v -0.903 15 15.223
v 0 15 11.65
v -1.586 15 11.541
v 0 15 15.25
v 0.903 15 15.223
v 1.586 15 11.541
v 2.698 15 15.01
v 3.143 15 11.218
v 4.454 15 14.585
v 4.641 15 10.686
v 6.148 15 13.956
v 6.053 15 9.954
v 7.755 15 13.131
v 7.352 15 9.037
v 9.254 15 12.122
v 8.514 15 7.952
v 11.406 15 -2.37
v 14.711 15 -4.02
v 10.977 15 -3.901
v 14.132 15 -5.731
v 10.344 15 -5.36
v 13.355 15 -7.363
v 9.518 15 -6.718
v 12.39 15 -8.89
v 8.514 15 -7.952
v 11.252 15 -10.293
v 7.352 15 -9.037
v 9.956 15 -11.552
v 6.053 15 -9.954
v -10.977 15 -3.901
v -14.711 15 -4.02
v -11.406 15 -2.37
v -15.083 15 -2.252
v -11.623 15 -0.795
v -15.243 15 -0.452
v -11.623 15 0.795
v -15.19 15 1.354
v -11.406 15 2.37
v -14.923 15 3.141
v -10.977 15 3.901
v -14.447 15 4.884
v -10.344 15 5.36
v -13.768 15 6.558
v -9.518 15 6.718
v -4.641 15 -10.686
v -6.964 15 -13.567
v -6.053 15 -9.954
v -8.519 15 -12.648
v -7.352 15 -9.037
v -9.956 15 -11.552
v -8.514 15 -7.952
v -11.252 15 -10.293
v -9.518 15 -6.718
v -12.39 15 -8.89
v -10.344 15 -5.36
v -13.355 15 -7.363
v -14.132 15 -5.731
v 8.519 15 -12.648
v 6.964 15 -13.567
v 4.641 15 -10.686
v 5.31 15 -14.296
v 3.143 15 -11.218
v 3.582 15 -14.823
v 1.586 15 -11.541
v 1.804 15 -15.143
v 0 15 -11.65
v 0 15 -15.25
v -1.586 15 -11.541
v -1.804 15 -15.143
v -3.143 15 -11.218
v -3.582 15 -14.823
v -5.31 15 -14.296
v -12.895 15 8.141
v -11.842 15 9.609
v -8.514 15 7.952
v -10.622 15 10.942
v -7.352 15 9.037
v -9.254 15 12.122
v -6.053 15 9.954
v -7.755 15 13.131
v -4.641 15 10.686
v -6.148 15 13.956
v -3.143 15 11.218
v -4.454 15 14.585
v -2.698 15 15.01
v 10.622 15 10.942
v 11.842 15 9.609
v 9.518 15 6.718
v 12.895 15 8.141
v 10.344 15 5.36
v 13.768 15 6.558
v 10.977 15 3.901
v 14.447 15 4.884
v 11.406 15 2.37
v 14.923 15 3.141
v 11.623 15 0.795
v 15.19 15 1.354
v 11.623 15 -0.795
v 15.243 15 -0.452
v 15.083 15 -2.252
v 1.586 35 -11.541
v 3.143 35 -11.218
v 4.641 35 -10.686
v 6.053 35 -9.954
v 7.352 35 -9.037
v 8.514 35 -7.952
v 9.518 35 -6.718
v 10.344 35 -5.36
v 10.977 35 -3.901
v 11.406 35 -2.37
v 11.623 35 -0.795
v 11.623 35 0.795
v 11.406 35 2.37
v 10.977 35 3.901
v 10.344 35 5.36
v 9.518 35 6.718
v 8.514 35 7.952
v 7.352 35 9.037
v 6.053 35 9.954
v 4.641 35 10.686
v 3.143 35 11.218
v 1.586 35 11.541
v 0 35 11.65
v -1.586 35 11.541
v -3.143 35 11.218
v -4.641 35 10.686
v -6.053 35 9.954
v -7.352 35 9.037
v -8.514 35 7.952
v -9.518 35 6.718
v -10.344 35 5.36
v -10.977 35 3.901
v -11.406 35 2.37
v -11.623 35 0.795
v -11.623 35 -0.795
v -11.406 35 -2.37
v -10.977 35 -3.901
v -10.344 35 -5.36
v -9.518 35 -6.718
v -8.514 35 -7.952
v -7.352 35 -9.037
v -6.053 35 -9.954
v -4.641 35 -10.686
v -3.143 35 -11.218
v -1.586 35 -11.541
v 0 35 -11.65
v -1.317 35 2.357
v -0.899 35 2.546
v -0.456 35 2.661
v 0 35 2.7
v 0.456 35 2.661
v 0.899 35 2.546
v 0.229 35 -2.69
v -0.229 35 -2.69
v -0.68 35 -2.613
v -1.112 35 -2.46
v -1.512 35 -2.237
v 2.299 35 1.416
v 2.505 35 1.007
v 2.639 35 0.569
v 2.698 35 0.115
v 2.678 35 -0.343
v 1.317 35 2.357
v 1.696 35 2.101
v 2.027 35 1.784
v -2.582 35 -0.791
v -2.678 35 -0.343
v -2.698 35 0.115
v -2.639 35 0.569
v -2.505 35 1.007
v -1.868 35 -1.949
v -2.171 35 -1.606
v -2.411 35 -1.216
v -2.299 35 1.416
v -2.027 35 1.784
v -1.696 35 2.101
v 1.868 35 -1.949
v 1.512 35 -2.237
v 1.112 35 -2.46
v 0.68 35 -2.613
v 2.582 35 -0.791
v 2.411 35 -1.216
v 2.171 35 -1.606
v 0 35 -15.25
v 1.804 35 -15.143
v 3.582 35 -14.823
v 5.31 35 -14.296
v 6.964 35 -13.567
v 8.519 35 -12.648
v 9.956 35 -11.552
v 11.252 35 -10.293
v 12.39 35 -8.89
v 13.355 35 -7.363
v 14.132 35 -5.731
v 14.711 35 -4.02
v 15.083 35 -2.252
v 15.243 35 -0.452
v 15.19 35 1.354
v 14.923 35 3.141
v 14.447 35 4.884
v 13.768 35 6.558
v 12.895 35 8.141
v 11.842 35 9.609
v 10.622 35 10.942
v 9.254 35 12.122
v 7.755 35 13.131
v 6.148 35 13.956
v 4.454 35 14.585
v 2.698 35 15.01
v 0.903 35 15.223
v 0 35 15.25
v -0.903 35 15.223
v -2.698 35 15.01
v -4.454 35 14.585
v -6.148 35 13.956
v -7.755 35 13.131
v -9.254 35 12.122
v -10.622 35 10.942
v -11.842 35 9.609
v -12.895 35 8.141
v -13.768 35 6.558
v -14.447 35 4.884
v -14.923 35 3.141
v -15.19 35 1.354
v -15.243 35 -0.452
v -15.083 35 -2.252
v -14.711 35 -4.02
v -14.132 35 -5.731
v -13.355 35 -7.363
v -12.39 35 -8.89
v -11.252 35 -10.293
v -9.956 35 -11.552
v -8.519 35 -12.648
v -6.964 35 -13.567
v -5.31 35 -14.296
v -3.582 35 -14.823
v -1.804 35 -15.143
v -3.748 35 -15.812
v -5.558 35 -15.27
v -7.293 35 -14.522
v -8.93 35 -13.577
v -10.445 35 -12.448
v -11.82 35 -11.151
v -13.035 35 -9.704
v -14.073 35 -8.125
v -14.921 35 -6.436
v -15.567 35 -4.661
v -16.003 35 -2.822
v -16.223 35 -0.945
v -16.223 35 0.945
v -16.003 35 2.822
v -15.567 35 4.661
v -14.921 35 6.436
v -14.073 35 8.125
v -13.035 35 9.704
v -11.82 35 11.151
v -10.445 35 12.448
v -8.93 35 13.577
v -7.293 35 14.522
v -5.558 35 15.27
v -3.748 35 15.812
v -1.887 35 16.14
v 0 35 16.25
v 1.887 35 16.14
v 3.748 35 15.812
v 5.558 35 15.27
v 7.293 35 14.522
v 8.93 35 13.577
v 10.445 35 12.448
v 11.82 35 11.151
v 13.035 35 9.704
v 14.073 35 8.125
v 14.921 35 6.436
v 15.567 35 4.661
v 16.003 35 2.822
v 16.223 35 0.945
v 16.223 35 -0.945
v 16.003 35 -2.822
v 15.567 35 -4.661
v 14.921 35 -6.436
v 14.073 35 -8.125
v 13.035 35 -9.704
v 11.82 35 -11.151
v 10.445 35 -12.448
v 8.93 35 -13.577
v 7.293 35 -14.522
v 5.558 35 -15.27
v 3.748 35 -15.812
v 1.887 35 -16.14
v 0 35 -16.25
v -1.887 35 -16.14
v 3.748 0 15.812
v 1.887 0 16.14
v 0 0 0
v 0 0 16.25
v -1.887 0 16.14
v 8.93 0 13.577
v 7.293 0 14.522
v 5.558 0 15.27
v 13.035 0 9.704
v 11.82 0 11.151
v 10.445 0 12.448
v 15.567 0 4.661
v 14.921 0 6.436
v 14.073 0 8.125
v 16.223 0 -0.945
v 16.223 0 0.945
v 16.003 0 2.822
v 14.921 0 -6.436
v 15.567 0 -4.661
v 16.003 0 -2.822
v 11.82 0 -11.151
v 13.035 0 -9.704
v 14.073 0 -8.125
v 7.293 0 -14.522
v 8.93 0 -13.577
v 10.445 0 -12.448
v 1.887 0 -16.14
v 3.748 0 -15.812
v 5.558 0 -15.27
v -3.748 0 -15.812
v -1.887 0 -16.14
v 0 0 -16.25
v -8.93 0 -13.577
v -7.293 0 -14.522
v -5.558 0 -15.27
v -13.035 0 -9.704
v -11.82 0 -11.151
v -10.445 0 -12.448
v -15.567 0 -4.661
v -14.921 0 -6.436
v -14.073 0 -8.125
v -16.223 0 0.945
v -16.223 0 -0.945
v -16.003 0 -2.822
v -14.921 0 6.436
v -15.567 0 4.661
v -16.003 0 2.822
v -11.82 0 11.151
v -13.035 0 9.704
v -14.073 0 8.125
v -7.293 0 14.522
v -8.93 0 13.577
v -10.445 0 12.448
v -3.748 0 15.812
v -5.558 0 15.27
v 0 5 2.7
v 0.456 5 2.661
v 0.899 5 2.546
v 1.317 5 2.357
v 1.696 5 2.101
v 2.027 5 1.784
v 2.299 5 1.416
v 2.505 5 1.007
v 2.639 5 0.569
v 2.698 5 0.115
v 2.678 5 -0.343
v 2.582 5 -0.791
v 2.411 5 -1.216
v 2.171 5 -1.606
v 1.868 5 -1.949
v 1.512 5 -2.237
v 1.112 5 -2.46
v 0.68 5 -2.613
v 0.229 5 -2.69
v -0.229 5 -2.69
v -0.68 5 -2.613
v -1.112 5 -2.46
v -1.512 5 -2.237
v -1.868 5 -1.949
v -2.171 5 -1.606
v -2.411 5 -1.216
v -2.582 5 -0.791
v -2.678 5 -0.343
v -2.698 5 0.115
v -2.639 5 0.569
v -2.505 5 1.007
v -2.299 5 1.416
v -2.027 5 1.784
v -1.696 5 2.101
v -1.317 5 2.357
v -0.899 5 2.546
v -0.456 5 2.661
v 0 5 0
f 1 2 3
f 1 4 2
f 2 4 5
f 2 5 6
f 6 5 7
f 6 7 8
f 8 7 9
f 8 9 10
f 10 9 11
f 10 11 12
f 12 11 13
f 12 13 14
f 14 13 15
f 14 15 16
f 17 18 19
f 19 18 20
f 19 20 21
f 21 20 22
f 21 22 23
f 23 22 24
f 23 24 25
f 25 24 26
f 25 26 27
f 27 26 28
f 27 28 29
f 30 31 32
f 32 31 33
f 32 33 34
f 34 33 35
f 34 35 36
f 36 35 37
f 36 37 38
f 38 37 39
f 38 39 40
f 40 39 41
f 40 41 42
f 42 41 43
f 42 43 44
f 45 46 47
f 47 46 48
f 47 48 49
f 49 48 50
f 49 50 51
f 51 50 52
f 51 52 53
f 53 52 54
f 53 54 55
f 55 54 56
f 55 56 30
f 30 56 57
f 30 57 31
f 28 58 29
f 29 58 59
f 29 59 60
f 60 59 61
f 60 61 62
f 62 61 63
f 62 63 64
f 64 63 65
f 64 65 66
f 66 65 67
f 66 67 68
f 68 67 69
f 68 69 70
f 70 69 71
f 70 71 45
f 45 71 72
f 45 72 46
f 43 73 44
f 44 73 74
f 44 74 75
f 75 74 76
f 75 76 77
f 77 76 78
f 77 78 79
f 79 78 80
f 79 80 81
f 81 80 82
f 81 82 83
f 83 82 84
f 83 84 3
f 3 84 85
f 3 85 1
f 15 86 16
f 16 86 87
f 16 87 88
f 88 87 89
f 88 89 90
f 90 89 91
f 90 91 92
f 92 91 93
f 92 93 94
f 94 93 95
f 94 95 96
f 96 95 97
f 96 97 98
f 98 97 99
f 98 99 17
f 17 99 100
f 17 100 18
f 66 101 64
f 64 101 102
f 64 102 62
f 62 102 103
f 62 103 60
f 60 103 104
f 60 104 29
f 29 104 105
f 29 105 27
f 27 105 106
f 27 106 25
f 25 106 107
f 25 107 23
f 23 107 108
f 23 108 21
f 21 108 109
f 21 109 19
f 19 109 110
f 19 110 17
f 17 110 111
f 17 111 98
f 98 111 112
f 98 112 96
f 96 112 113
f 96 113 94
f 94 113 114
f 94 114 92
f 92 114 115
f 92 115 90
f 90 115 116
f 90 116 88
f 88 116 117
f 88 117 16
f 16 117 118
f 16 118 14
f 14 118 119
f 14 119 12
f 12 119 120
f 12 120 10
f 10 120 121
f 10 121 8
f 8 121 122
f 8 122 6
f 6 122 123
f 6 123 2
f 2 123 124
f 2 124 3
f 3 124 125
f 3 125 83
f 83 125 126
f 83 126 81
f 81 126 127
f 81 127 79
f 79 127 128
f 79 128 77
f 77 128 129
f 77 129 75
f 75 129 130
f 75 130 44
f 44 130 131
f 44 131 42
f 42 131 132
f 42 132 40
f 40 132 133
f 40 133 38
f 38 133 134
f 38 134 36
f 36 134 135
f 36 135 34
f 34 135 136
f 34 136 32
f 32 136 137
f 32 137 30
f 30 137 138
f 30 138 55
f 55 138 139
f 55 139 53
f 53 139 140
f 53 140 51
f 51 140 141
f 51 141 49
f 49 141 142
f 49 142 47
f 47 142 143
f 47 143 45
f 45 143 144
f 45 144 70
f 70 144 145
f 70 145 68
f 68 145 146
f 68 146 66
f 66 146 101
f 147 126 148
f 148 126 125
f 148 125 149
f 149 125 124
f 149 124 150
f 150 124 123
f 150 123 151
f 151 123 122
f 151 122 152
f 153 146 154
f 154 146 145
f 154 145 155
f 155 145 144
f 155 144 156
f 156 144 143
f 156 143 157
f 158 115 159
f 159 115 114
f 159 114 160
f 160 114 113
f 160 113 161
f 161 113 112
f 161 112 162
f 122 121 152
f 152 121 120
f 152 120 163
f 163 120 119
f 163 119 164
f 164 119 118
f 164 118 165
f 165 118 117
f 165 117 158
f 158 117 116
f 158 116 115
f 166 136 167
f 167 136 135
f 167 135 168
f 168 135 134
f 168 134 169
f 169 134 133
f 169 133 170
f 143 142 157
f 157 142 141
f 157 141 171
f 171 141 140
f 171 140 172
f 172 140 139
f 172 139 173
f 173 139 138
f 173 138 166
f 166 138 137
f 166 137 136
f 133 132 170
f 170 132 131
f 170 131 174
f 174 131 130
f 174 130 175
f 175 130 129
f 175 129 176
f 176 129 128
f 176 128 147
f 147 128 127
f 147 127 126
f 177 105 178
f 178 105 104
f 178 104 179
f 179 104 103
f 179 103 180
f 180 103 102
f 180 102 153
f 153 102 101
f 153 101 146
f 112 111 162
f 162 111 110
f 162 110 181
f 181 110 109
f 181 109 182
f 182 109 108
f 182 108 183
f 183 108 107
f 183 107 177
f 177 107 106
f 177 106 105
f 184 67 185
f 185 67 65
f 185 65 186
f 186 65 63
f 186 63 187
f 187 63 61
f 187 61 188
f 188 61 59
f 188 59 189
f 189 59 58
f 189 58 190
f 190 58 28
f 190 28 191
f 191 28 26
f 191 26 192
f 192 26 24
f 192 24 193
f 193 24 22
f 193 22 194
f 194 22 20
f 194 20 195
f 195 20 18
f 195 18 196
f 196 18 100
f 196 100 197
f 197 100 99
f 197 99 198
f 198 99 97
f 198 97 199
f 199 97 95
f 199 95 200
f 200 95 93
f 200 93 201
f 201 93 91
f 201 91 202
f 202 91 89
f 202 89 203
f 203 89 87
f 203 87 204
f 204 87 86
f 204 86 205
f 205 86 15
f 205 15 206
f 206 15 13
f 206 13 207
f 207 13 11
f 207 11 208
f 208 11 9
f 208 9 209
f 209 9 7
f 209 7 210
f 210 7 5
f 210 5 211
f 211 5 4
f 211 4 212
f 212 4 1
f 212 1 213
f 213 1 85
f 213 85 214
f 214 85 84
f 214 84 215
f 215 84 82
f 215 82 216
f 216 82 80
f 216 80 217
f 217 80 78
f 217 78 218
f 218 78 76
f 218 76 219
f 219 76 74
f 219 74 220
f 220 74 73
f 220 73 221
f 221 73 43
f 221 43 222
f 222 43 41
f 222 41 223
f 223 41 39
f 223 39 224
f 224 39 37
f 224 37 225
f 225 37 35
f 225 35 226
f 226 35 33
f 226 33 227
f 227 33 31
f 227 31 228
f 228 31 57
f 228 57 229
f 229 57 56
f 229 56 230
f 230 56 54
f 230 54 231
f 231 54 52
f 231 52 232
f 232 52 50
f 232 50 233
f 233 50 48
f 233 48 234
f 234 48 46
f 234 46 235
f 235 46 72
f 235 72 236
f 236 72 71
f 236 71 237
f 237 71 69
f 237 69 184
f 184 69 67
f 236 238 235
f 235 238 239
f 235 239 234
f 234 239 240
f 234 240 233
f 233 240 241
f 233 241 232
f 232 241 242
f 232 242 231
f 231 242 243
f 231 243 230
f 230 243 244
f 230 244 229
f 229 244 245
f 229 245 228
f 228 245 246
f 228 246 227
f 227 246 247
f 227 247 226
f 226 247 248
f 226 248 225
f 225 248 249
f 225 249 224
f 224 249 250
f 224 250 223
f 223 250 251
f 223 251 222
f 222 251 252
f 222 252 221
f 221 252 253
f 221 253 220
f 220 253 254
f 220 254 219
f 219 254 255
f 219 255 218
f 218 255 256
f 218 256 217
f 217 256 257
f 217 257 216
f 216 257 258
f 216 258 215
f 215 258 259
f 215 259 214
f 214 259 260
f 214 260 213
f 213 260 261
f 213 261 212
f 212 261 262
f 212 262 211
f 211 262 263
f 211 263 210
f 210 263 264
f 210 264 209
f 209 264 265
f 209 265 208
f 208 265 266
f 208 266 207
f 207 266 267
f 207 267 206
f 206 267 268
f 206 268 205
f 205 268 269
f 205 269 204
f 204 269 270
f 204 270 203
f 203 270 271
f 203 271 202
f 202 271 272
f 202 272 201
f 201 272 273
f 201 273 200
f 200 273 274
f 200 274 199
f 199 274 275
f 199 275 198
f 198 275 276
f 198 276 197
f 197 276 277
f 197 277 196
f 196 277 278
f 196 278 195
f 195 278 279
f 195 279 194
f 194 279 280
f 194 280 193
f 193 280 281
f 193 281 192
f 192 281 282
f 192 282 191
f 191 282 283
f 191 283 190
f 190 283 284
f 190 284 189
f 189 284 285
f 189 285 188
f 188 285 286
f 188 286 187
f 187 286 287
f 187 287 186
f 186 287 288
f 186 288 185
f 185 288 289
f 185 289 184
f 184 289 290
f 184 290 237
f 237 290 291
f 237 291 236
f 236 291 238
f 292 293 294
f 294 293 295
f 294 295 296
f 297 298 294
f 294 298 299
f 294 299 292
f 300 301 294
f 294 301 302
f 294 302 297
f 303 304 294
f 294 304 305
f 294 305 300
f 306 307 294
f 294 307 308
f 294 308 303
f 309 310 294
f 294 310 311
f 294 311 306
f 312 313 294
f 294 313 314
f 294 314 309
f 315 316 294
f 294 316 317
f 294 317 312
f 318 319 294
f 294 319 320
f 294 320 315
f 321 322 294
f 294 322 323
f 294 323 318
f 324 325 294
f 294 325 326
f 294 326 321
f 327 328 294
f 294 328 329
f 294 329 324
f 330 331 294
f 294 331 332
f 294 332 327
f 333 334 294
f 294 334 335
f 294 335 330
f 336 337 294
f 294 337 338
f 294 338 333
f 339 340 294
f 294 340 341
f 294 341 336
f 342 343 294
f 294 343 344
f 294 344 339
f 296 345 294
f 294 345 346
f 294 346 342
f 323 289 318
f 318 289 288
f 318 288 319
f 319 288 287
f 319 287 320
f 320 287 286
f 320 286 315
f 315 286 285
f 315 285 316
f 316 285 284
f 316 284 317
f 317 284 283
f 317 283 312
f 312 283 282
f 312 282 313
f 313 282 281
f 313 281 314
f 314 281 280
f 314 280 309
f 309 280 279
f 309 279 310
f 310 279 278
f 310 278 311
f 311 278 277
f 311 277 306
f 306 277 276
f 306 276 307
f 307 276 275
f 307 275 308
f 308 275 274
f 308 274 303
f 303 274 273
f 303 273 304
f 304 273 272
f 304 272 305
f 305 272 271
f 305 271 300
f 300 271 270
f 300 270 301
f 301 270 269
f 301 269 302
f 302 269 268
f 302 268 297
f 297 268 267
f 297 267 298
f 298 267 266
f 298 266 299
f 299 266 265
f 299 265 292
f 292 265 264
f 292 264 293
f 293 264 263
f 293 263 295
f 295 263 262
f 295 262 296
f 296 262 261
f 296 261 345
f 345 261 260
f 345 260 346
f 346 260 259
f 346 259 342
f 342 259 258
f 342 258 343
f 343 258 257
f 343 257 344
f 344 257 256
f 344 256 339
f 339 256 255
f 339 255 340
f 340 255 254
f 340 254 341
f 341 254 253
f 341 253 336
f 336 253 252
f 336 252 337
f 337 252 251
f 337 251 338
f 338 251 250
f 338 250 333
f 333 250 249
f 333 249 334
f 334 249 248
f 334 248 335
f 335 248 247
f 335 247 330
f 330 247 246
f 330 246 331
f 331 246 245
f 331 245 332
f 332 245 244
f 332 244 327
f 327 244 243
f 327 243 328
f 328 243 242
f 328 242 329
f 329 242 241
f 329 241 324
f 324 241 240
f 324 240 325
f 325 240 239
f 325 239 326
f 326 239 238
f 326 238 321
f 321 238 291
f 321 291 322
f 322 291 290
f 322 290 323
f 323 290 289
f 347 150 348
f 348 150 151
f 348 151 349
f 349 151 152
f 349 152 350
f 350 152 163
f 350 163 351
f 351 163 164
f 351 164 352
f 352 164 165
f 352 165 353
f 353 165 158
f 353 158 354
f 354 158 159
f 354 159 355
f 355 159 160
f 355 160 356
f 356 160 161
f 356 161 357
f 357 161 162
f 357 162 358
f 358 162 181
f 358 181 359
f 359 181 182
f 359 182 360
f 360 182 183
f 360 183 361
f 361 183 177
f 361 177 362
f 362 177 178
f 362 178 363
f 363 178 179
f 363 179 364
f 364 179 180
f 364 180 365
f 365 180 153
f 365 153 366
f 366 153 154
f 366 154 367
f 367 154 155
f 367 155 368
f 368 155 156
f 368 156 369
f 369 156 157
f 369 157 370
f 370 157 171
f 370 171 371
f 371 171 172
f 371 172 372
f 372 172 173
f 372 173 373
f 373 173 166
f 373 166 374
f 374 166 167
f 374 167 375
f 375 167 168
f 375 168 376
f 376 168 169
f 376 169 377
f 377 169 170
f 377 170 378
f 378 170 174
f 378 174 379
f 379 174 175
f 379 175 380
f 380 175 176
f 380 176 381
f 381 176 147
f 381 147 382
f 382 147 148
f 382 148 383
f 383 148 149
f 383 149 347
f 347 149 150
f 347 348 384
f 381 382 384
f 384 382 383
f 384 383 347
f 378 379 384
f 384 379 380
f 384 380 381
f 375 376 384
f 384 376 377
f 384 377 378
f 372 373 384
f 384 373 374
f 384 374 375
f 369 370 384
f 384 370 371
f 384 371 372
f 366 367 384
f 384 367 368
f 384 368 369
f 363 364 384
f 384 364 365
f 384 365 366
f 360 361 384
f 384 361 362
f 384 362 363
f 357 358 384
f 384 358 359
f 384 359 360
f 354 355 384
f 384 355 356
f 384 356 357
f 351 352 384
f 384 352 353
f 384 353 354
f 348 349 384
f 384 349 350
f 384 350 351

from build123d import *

# Parameters (mm, degrees)
SKETCH1_R           = 16.25
BOSS_EXTRUDE1_DEPTH = 15
SKETCH2_R           = 11.65
BOSS_EXTRUDE2_DEPTH = 20
SKETCH3_R           = 16.25
SKETCH3_R_2         = 15.25
BOSS_EXTRUDE4_DEPTH = 20
SKETCH4_R           = 2.7
CUT_EXTRUDE1_DEPTH  = 30


with BuildPart() as part:
    # Sketch1 → Boss-Extrude1 (new body)
    with BuildSketch(Plane(origin=(0, 0, 0), x_dir=(1, 0, 0), z_dir=(0, 1, 0))):
        with Locations(Location((0, 0, 0), (0, 0, 270))):
            Circle(SKETCH1_R)
    extrude(amount=BOSS_EXTRUDE1_DEPTH)

    # Sketch2 → Boss-Extrude2 (add)
    with BuildSketch(Plane(origin=(0, 15, 0), x_dir=(1, 0, 0), z_dir=(0, 1, 0))):
        with Locations(Location((0, 0, 0), (0, 0, 270))):
            Circle(SKETCH2_R)
    extrude(amount=BOSS_EXTRUDE2_DEPTH)

    # Sketch3 → Boss-Extrude4 (add)
    with BuildSketch(Plane(origin=(0, 15, 0), x_dir=(1, 0, 0), z_dir=(0, 1, 0))):
        with Locations(Location((0, 0, 0), (0, 0, 270))):
            Circle(SKETCH3_R)
        with Locations(Location((0, 0, 0), (0, 0, 270))):
            Circle(SKETCH3_R_2, mode=Mode.SUBTRACT)
    extrude(amount=BOSS_EXTRUDE4_DEPTH)

    # Sketch4 → Cut-Extrude1 (cut)
    with BuildSketch(Plane(origin=(0, 35, 0), x_dir=(1, 0, 0), z_dir=(0, 1, 0))):
        with Locations(Location((0, 0, 0), (0, 0, 270))):
            Circle(SKETCH4_R)
    extrude(amount=-CUT_EXTRUDE1_DEPTH, mode=Mode.SUBTRACT)


solid = part.part
